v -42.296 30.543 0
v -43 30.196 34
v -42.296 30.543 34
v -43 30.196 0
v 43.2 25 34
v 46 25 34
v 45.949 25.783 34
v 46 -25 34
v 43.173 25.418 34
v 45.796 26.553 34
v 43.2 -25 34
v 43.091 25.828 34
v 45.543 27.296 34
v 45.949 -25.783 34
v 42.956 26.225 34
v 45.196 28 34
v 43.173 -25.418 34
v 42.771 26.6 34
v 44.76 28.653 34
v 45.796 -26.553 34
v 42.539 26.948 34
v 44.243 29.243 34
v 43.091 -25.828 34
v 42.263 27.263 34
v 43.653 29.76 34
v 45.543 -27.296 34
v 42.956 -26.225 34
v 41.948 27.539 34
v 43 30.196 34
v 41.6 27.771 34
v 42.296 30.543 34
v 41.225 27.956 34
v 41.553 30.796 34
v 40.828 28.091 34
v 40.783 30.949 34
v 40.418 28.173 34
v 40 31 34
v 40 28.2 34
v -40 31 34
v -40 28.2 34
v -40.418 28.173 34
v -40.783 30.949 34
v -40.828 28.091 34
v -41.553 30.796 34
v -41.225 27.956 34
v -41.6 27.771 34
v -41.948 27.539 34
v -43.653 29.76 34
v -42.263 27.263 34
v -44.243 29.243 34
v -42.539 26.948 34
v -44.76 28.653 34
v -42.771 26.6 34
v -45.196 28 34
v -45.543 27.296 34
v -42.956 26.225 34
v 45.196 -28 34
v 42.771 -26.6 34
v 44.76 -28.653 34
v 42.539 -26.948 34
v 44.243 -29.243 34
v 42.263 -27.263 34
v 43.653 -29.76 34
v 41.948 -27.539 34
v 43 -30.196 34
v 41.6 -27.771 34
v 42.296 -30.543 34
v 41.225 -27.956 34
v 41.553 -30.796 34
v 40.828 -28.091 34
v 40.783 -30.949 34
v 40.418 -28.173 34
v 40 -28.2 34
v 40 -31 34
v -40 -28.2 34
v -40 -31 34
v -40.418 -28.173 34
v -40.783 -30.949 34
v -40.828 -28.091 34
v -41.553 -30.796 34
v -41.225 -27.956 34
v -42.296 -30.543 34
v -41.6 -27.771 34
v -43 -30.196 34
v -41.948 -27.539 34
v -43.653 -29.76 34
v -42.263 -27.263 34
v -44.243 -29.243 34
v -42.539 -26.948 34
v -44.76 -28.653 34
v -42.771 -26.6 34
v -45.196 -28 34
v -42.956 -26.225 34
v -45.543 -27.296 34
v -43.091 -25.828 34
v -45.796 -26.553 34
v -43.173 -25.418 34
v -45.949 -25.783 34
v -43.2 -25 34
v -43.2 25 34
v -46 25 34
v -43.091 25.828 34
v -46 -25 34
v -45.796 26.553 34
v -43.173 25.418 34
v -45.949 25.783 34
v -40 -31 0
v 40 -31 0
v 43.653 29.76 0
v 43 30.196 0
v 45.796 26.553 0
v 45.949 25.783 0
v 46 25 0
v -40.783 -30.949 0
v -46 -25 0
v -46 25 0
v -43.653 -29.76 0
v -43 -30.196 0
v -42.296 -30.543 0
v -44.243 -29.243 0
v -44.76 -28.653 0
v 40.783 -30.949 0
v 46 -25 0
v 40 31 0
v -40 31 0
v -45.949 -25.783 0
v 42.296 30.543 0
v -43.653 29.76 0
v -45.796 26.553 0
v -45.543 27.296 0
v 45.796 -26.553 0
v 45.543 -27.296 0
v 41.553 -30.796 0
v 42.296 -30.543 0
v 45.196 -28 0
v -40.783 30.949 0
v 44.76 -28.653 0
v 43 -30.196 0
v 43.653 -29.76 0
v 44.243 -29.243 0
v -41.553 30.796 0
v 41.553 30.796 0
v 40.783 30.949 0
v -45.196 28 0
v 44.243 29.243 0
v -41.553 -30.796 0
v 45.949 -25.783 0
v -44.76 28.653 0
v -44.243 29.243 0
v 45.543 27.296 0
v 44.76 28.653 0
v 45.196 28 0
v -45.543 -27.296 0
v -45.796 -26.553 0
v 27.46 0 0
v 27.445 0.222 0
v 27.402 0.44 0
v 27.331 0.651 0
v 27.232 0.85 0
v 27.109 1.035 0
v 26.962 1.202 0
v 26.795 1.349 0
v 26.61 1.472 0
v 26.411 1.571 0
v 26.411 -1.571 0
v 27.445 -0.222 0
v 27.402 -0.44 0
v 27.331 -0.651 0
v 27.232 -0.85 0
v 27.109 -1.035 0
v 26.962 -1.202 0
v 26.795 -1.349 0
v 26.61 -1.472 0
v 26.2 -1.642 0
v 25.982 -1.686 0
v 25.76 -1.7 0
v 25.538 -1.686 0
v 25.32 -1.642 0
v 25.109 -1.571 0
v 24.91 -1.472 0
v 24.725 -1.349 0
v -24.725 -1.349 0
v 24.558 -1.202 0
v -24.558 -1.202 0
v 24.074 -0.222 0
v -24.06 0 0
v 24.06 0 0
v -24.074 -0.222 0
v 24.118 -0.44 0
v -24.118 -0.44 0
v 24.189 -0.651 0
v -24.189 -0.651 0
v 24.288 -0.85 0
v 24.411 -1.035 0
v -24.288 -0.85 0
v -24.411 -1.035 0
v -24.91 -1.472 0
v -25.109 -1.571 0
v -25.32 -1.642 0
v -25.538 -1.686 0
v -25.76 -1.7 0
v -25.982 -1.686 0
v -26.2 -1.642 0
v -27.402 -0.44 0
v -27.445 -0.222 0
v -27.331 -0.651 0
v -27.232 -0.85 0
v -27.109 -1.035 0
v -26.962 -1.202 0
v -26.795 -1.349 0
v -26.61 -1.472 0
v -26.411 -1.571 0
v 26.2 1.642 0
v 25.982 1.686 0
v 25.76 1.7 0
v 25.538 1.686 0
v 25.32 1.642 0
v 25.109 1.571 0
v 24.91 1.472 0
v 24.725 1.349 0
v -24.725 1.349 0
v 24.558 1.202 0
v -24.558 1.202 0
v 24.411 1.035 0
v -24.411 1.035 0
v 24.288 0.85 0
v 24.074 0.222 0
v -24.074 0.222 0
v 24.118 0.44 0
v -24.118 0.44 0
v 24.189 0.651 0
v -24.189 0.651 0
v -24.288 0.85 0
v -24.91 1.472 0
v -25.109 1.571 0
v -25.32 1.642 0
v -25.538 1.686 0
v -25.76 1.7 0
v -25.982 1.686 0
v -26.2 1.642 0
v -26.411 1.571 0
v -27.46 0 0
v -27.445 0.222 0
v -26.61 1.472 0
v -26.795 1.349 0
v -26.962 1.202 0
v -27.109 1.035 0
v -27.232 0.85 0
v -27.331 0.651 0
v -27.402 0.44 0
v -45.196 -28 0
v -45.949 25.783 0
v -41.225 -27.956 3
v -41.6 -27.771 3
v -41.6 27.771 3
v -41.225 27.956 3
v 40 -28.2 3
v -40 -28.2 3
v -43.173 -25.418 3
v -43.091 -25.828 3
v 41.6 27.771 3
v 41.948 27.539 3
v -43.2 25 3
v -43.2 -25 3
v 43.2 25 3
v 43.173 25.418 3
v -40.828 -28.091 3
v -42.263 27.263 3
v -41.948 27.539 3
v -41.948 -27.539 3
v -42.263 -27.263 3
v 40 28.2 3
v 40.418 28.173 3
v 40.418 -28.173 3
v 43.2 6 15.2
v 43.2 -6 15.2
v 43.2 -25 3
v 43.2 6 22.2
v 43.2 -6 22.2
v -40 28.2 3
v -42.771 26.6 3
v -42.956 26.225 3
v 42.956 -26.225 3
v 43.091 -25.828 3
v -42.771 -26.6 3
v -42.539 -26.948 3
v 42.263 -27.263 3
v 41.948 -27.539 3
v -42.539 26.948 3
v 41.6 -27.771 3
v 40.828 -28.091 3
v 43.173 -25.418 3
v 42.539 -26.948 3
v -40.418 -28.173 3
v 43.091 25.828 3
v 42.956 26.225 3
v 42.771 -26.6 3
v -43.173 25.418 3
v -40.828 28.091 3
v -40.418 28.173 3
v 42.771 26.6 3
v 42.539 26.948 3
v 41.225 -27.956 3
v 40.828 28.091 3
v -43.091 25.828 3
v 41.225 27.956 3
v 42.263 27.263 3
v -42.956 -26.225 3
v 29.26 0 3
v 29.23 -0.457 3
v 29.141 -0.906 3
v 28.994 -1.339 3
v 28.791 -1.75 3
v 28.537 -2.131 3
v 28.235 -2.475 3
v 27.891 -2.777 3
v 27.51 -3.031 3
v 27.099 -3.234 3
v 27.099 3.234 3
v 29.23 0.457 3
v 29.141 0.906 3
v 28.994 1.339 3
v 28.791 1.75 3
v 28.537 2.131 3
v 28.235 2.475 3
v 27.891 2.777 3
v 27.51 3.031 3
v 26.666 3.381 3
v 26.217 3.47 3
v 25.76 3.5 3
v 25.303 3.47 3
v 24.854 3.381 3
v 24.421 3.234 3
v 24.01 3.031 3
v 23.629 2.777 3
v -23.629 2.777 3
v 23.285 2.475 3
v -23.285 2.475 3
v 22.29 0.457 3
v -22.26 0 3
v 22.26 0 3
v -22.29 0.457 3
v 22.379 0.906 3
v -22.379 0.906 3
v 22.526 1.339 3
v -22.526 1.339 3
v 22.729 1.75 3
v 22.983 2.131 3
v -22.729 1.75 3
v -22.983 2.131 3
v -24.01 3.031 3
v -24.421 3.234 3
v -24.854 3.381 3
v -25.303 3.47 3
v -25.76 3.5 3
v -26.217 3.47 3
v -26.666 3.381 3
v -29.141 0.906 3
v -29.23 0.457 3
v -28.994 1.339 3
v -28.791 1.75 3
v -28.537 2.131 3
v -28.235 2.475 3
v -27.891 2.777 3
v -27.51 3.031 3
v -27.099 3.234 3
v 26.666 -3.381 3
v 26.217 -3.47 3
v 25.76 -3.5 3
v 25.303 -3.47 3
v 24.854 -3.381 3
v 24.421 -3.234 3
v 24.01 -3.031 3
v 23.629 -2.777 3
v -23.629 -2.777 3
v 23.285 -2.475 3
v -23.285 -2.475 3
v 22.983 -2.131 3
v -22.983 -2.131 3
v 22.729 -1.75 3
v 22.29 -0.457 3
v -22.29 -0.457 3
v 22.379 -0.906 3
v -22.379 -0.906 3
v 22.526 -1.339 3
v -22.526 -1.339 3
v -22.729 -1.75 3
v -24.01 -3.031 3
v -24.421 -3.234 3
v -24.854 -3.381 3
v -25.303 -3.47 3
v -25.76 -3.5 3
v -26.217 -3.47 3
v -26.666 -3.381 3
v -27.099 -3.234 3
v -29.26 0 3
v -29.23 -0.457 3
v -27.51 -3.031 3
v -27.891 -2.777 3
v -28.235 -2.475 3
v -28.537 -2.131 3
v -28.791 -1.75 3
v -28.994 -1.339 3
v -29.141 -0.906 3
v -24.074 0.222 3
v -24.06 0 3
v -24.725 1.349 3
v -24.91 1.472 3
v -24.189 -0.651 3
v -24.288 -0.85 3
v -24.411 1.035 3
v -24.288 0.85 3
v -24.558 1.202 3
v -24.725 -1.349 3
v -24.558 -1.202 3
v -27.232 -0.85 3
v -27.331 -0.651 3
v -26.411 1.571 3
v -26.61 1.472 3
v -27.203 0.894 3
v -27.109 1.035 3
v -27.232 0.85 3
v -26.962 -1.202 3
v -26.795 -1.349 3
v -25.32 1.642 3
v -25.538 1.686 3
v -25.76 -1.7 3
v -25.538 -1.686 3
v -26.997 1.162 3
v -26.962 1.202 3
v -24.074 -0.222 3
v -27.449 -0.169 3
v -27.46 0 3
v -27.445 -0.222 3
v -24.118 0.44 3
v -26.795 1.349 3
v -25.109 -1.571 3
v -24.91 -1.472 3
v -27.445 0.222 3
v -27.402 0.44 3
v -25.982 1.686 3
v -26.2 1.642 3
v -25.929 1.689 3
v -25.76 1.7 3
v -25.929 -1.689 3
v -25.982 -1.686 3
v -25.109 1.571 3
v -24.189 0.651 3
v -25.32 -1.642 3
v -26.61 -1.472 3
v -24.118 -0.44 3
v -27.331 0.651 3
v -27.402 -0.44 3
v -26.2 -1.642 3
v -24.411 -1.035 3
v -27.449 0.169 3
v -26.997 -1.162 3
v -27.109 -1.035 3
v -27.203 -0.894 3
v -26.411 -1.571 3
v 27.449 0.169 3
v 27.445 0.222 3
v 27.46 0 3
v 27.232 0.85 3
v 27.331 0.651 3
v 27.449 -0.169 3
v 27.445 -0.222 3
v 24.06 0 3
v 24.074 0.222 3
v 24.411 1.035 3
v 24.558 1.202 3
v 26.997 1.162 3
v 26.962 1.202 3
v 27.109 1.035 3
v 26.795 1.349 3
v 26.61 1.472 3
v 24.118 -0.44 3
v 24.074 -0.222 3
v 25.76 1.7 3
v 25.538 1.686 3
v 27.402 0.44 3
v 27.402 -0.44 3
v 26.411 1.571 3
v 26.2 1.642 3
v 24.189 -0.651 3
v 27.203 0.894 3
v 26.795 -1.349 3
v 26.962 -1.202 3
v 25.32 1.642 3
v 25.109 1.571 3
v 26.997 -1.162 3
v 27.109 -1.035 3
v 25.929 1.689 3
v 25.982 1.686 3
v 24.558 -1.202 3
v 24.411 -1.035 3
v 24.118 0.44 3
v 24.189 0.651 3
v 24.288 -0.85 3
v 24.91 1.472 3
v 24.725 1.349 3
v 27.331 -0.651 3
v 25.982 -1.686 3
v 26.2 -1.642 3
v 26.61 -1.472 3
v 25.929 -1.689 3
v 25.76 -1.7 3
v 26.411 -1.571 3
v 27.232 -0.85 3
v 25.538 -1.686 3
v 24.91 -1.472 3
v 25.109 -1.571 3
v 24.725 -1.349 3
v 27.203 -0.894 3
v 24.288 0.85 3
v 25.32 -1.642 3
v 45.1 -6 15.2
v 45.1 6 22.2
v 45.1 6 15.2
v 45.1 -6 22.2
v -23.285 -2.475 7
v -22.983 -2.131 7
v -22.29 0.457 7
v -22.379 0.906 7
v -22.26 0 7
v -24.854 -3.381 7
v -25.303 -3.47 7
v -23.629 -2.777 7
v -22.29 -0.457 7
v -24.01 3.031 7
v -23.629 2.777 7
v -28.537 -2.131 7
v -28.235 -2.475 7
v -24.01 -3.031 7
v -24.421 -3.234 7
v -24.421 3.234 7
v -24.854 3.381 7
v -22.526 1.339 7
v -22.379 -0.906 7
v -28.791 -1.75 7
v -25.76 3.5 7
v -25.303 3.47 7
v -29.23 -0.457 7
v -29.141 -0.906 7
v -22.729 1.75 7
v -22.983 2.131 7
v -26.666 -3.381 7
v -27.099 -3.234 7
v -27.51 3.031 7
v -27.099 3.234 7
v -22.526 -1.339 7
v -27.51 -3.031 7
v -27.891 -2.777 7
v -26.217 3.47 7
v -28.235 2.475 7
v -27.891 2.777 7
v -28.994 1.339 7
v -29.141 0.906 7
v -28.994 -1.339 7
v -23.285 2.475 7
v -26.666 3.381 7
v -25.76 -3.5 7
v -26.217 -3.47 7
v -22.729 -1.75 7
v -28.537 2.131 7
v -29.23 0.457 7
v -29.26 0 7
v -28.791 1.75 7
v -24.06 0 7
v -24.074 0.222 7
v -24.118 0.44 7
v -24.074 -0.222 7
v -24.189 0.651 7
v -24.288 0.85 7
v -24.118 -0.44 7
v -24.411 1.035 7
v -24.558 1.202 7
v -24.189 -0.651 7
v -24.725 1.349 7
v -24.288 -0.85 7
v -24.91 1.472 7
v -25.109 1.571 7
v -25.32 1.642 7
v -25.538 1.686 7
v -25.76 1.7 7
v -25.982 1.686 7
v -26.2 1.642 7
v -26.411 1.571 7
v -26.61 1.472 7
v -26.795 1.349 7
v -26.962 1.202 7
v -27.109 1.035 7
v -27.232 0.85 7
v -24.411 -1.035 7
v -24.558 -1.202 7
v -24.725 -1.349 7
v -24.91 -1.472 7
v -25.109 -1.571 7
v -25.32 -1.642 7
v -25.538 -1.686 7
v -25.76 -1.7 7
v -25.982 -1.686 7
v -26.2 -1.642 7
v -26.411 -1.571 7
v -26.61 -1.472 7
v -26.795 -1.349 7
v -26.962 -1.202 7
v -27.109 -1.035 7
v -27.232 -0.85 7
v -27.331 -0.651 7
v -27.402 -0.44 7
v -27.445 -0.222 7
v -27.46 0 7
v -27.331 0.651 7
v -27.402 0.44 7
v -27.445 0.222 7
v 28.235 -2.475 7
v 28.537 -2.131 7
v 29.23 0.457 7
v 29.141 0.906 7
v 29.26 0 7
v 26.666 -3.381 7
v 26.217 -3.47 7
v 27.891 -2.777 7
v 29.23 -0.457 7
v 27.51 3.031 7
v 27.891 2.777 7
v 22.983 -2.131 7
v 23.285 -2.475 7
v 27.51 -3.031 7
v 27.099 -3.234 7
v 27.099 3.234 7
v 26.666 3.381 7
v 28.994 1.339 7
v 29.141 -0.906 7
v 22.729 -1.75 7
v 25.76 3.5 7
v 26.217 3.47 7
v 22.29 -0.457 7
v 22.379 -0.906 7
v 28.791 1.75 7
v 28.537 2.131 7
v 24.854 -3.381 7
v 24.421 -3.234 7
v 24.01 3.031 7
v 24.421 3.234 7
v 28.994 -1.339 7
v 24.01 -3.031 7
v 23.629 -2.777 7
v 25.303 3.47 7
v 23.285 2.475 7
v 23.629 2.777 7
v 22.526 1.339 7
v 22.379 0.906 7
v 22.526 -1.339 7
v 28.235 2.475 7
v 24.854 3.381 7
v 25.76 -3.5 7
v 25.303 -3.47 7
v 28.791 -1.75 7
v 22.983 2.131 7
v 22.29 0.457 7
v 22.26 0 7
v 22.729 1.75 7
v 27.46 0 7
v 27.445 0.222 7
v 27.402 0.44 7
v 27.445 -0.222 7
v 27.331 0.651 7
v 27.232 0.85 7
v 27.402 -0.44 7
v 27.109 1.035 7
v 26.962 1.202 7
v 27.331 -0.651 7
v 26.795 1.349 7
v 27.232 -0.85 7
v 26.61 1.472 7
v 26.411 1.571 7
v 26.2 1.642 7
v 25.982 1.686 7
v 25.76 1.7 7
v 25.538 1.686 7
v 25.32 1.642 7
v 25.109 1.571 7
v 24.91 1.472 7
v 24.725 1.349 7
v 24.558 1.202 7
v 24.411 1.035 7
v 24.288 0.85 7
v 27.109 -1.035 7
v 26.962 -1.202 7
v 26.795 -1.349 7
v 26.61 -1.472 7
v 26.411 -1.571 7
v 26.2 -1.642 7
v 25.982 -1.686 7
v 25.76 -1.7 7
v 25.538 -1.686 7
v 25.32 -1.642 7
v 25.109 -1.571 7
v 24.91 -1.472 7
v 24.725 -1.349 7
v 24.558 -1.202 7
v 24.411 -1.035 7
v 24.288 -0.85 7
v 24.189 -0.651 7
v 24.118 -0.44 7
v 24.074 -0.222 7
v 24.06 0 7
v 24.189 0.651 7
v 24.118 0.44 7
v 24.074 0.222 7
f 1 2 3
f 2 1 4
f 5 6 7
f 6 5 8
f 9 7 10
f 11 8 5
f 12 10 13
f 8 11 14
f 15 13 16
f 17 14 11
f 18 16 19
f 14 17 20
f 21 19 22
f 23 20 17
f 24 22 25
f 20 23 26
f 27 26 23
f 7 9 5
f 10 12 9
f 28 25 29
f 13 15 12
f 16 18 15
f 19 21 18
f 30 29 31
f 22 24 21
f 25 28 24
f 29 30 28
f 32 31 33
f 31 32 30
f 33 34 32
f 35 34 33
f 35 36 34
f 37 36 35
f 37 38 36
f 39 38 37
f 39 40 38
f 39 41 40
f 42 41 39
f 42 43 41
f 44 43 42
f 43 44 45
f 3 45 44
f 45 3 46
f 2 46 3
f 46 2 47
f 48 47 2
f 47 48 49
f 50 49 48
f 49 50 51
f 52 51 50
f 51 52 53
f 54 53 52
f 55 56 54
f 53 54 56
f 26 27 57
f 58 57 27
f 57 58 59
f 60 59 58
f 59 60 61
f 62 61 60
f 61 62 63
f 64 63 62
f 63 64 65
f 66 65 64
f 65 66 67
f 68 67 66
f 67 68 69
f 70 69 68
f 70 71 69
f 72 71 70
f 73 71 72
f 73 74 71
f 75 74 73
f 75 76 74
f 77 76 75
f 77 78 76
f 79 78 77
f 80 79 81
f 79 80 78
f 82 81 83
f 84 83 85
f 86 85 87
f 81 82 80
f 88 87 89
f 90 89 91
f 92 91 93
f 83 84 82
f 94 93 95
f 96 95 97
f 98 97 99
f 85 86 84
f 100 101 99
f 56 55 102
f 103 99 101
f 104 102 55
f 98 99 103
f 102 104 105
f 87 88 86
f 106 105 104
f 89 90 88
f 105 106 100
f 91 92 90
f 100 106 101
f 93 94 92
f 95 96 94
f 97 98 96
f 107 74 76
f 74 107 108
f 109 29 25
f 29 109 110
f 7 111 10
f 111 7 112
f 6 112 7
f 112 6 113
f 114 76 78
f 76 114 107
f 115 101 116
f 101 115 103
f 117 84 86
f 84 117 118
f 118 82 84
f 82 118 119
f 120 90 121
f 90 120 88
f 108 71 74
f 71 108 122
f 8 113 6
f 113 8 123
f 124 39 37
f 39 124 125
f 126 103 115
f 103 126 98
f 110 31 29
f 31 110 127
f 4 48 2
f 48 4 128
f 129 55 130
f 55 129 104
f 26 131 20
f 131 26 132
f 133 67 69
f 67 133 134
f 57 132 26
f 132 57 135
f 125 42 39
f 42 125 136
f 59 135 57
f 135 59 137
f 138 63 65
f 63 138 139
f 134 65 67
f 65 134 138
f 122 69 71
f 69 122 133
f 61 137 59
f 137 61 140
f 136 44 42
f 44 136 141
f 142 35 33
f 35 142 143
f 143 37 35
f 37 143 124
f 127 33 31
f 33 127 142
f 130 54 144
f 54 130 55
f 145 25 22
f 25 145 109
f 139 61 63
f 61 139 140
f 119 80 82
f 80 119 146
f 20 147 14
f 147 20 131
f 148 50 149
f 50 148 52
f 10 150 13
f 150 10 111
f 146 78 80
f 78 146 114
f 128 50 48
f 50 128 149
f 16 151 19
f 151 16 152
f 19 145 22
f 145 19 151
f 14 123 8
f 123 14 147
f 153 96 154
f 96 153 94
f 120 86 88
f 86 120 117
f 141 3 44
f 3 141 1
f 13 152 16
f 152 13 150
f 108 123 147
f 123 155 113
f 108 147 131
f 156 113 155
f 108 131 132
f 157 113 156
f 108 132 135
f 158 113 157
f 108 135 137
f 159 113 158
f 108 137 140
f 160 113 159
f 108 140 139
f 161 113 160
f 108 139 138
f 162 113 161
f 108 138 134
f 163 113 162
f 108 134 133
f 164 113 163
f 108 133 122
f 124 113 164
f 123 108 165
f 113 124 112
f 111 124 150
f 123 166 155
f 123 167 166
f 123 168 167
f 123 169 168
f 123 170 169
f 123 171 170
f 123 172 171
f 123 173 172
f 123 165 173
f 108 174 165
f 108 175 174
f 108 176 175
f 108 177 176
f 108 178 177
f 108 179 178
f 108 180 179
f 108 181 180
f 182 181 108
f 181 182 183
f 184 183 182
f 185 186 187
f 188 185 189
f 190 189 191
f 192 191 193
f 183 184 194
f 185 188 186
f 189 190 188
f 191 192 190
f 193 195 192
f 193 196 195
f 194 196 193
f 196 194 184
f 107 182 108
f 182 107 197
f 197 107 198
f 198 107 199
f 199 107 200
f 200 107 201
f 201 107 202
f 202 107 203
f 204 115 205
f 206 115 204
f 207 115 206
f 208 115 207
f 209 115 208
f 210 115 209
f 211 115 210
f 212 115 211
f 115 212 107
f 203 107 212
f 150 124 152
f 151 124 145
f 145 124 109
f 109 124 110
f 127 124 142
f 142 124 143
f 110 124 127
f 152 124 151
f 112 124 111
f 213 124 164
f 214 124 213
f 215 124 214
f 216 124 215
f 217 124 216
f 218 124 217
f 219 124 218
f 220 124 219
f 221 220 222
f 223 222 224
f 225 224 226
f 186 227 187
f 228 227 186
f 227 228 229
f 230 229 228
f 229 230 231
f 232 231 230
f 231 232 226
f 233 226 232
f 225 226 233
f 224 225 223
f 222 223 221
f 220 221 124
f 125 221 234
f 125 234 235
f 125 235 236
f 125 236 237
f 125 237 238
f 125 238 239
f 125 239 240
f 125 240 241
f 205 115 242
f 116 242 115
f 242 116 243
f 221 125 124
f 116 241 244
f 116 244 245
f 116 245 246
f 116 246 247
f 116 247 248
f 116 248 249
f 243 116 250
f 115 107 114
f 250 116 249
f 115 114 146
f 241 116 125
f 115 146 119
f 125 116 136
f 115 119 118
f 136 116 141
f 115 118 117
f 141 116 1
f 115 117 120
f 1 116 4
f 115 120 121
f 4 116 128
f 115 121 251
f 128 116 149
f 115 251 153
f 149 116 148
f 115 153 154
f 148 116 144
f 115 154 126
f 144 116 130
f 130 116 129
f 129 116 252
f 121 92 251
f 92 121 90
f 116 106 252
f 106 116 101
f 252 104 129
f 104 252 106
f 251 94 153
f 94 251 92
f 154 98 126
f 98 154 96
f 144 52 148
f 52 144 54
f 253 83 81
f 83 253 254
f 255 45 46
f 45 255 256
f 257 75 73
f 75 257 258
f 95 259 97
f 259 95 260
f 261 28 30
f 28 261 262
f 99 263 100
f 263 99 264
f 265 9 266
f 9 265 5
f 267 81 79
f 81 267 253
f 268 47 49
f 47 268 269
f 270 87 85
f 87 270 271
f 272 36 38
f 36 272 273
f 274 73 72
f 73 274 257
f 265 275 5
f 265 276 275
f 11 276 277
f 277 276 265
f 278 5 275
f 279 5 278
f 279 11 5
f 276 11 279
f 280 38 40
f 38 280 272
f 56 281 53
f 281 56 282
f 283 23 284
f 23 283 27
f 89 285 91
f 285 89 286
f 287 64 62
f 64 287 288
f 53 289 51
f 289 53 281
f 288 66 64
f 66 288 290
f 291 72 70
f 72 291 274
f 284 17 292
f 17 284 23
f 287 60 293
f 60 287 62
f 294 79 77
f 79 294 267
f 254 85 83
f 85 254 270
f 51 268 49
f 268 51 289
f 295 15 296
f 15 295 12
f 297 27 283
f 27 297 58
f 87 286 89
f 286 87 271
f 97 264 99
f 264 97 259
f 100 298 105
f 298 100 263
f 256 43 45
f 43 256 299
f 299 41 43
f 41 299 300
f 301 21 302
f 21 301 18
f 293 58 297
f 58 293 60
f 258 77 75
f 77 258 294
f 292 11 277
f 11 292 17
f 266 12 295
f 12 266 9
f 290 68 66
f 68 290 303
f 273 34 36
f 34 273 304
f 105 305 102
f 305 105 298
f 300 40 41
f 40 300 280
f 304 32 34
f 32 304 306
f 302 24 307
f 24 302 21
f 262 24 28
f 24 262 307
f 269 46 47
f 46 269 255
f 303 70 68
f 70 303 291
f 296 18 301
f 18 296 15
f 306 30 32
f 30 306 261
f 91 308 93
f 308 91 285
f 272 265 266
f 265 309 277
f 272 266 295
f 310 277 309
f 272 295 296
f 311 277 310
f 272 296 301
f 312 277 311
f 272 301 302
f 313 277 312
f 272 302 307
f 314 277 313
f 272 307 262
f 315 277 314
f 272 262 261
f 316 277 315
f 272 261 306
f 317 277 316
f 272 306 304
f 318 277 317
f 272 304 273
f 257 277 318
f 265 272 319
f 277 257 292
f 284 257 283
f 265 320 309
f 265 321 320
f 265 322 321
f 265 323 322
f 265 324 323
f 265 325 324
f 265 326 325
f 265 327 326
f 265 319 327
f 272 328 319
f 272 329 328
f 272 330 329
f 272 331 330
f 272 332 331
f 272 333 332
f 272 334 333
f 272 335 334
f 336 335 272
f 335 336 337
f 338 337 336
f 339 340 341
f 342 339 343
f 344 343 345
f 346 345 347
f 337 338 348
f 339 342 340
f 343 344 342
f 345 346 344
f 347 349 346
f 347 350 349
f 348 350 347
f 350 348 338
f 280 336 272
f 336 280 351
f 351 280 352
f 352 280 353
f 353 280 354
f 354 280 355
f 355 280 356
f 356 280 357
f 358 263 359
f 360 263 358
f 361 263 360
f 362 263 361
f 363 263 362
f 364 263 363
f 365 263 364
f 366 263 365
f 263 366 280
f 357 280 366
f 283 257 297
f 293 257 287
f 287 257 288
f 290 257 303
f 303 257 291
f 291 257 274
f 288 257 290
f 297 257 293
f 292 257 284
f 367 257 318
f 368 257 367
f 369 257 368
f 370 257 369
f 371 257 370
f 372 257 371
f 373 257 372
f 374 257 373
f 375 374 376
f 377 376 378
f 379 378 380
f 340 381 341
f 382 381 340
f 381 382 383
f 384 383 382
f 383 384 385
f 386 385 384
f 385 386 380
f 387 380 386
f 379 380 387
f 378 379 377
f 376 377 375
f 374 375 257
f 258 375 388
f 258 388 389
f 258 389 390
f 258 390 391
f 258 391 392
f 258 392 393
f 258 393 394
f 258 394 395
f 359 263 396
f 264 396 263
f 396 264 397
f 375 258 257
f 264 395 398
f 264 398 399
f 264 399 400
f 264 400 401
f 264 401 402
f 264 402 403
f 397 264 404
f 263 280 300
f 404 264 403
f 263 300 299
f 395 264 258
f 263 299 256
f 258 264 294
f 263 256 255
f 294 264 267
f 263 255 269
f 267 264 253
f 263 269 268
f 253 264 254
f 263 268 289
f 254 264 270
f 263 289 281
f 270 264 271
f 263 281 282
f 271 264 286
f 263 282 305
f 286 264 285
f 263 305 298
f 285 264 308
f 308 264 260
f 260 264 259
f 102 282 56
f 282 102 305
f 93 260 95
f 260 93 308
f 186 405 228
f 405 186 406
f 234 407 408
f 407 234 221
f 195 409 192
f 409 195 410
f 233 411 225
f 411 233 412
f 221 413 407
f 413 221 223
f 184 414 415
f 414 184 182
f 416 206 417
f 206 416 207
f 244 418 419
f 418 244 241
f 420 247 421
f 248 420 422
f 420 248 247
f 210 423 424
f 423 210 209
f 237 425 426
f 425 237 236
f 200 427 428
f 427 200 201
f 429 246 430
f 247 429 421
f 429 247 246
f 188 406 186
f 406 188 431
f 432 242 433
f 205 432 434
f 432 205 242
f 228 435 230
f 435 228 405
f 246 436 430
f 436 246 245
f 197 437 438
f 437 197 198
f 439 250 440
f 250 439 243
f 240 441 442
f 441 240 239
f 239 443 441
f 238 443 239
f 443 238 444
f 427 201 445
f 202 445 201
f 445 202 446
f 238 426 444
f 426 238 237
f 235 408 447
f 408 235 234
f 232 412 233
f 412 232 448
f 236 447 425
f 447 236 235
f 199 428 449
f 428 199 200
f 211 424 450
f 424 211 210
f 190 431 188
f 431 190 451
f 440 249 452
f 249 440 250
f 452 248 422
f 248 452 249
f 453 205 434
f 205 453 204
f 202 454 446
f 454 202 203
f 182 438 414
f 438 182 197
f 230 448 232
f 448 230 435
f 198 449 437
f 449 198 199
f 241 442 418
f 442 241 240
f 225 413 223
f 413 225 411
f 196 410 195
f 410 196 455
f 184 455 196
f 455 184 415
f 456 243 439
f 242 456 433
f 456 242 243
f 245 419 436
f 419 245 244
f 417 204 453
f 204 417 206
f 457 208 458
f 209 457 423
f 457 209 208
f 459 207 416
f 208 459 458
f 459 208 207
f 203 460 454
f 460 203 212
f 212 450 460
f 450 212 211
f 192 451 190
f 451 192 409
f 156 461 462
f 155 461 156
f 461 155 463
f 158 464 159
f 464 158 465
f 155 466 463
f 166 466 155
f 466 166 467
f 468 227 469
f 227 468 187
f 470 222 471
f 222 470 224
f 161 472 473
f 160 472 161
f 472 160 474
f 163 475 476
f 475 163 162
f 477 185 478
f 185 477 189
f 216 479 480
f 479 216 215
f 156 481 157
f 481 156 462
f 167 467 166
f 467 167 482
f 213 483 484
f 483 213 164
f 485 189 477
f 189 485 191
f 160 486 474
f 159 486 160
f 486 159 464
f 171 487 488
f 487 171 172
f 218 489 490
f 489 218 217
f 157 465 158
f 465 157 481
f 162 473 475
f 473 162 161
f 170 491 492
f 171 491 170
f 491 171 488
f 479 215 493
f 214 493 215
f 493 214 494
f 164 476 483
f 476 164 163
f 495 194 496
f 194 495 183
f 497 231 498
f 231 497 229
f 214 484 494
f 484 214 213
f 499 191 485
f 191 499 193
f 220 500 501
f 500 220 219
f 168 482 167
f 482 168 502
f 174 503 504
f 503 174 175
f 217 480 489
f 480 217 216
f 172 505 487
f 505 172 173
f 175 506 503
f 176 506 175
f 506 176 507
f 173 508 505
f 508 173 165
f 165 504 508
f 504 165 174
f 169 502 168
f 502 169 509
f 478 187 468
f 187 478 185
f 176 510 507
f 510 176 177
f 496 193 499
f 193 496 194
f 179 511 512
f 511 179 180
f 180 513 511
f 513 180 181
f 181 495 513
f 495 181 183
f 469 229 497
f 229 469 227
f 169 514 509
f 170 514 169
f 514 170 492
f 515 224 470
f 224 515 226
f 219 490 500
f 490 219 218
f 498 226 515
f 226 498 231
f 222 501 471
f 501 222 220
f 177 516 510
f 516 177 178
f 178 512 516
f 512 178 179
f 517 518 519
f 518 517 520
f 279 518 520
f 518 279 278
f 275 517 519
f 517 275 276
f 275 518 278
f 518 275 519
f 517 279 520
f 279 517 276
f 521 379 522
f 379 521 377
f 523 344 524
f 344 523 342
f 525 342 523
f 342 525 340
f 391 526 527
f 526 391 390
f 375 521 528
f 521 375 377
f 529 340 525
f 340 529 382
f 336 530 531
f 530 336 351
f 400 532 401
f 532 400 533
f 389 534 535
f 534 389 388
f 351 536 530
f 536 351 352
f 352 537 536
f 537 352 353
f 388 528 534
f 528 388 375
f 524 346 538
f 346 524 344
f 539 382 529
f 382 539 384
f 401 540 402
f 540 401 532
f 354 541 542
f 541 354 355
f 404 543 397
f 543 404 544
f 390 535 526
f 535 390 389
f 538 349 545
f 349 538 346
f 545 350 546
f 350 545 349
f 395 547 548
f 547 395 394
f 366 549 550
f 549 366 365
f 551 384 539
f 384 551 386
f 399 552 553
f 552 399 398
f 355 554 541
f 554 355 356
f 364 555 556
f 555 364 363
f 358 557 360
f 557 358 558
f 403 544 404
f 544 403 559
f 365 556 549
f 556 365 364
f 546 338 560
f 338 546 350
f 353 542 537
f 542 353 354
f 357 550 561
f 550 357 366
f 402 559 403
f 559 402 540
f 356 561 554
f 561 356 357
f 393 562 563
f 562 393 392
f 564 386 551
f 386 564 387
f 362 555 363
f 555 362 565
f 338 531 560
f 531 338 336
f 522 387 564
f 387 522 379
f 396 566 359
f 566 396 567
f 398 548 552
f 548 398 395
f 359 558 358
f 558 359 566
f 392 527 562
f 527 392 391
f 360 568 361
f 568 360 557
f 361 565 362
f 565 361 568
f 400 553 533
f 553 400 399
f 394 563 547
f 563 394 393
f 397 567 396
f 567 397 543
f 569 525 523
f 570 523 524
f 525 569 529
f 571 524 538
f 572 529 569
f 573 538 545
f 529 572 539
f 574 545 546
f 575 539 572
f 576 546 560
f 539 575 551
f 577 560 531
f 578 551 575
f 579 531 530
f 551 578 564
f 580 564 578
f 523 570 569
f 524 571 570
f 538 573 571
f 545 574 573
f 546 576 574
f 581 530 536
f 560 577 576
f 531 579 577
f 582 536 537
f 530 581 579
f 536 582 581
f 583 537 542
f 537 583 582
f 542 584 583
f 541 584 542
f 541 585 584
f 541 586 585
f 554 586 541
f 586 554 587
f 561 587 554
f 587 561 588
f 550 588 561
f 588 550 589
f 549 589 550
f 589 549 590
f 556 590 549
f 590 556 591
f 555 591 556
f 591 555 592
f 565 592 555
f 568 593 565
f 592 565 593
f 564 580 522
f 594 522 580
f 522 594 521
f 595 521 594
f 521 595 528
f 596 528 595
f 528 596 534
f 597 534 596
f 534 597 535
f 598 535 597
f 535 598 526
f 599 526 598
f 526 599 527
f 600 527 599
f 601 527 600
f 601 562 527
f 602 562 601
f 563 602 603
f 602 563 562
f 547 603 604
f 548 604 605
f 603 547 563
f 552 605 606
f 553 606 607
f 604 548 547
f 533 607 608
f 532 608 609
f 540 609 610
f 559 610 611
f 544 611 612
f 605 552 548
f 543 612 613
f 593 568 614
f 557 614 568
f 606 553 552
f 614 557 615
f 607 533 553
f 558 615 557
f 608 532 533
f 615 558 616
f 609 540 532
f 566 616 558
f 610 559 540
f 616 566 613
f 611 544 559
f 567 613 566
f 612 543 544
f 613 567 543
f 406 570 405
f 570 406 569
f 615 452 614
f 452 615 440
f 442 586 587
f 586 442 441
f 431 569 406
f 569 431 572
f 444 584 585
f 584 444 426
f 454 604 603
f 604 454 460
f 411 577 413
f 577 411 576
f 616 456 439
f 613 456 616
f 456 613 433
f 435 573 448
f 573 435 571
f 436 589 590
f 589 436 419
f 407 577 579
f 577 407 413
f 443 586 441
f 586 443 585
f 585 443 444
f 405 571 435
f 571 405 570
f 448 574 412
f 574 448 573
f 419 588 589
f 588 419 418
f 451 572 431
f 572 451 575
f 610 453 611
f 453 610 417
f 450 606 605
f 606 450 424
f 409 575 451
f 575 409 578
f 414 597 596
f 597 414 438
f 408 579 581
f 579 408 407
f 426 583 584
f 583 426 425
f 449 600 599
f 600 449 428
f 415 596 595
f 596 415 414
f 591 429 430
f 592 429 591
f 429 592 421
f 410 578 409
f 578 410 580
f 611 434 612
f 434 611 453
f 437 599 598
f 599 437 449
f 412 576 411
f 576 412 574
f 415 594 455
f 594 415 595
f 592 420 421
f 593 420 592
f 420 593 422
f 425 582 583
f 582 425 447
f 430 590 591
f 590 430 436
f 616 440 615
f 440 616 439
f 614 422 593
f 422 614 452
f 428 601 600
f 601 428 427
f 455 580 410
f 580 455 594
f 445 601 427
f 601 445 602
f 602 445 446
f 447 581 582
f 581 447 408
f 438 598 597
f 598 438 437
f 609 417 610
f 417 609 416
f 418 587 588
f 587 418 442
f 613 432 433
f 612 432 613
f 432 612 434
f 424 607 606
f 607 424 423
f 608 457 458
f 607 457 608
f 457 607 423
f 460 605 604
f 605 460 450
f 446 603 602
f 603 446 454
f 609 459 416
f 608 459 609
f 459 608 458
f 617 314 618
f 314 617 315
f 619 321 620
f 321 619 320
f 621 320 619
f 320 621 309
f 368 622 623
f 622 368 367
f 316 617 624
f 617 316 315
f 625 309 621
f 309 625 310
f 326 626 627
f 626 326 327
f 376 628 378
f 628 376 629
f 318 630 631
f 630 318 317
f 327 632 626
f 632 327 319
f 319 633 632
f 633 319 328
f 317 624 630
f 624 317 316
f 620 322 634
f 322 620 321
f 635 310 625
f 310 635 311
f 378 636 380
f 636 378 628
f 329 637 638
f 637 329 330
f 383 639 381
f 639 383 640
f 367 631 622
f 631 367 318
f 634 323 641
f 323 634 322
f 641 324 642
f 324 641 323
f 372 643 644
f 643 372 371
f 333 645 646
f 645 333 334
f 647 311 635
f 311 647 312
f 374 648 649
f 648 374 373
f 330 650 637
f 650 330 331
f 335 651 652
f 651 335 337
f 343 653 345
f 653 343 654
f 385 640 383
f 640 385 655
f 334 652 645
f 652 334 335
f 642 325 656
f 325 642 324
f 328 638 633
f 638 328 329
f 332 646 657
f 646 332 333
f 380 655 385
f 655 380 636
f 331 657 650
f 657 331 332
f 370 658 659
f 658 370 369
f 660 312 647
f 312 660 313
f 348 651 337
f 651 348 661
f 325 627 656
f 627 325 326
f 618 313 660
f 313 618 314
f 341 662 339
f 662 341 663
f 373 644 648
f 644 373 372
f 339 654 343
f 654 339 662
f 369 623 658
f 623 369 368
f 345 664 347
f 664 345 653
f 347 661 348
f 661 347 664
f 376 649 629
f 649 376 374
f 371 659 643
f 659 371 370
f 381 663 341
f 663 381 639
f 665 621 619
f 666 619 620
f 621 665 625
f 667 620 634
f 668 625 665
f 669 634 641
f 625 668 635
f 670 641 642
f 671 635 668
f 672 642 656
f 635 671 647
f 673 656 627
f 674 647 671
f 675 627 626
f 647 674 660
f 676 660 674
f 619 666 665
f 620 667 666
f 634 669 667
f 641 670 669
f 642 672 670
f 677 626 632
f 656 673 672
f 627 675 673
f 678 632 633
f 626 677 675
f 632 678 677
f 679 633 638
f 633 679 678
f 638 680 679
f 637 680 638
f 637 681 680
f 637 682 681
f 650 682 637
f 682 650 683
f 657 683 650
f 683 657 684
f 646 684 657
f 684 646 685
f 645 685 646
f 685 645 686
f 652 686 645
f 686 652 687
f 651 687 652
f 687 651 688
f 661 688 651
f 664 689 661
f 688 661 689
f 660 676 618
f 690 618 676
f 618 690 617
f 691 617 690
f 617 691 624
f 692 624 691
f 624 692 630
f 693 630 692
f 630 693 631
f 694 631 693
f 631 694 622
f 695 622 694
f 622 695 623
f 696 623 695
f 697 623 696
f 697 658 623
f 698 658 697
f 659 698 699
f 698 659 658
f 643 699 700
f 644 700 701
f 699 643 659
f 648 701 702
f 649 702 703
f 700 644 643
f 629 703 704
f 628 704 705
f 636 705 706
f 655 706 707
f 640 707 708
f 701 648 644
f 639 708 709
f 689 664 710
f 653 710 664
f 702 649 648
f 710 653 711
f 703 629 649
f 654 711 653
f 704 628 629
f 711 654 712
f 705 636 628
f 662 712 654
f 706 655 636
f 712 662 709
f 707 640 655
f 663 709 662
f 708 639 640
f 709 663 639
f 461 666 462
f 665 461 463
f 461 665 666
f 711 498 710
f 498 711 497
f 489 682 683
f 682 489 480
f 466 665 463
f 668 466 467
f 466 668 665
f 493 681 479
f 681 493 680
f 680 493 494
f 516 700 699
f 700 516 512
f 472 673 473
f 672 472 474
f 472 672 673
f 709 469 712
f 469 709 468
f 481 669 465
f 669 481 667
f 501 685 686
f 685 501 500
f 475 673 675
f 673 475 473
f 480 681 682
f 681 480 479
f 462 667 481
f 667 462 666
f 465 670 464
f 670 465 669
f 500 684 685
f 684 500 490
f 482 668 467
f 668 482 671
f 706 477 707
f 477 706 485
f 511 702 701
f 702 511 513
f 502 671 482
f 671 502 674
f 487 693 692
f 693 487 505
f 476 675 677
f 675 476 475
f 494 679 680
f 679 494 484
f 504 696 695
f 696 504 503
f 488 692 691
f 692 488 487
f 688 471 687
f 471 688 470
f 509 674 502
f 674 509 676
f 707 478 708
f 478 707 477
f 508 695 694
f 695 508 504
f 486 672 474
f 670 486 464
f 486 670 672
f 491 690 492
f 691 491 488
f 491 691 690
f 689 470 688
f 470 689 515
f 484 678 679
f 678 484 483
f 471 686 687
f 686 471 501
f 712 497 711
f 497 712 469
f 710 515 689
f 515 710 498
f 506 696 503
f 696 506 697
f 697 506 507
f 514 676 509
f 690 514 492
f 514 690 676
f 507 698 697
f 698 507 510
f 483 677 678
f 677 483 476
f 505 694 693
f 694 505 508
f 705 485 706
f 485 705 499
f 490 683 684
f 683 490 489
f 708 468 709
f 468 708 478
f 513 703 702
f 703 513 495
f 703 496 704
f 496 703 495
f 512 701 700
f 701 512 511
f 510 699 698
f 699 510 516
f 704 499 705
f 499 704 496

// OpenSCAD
// ============================================================================
// Get Me An Alt — Parametric OpenSCAD Module
// Part: PRT-09 — Snap-Fit TMC2209 + ESP32 Motion Controller Side Case (controller-side-case)
// Function: Houses ESP32 controller, 3× TMC2209 drivers, and USB-C PD board.
// Target Bounding Box (mm): [92, 62, 34]
// Print Material: PLA+ | Min Wall: >= 1.6mm | Tolerance: 0.2mm
// ============================================================================
$fn = 48;
part_width = 92;
part_depth = 62;
part_height = 34;
wall_thickness = 2.8;
floor_thickness = 3;
corner_radius = 6;
tolerance = 0.2;
m3_clearance_d = 3.4; // M3 screw clearance hole (3.0mm + 2*0.2mm)

module rounded_rect_prism(w, d, h, r) {
  cr = max(0.5, min(r, min(w, d) / 2 - 0.1));
  linear_extrude(height = h)
    offset(r = cr)
      offset(r = -cr)
        square([w, d], center = true);
}

module part_controller_side_case() {
  union() {
    difference() {
      rounded_rect_prism(part_width, part_depth, part_height, corner_radius);
      translate([0, 0, floor_thickness])
        rounded_rect_prism(
          part_width - 2 * wall_thickness,
          part_depth - 2 * wall_thickness,
          part_height,
          max(1.0, corner_radius - wall_thickness)
        );
    translate([-part_width * 0.28, 0, -1]) cylinder(h = floor_thickness + 2, d = m3_clearance_d);
    translate([part_width * 0.28, 0, -1]) cylinder(h = floor_thickness + 2, d = m3_clearance_d);
      // Cable / USB-C pass-through slot on side wall
      translate([part_width / 2 - wall_thickness - 1, 0, part_height * 0.55])
        cube([wall_thickness + 3, 12, 7], center = true);
    }
    // Internal M3 PCB standoff bosses
    for (sx = [-part_width * 0.28, part_width * 0.28]) {
      translate([sx, 0, floor_thickness])
        difference() {
          cylinder(h = 4.0, d = 7.0);
          translate([0, 0, -0.5]) cylinder(h = 5.0, d = m3_clearance_d);
        }
    }
  }
}

part_controller_side_case();
